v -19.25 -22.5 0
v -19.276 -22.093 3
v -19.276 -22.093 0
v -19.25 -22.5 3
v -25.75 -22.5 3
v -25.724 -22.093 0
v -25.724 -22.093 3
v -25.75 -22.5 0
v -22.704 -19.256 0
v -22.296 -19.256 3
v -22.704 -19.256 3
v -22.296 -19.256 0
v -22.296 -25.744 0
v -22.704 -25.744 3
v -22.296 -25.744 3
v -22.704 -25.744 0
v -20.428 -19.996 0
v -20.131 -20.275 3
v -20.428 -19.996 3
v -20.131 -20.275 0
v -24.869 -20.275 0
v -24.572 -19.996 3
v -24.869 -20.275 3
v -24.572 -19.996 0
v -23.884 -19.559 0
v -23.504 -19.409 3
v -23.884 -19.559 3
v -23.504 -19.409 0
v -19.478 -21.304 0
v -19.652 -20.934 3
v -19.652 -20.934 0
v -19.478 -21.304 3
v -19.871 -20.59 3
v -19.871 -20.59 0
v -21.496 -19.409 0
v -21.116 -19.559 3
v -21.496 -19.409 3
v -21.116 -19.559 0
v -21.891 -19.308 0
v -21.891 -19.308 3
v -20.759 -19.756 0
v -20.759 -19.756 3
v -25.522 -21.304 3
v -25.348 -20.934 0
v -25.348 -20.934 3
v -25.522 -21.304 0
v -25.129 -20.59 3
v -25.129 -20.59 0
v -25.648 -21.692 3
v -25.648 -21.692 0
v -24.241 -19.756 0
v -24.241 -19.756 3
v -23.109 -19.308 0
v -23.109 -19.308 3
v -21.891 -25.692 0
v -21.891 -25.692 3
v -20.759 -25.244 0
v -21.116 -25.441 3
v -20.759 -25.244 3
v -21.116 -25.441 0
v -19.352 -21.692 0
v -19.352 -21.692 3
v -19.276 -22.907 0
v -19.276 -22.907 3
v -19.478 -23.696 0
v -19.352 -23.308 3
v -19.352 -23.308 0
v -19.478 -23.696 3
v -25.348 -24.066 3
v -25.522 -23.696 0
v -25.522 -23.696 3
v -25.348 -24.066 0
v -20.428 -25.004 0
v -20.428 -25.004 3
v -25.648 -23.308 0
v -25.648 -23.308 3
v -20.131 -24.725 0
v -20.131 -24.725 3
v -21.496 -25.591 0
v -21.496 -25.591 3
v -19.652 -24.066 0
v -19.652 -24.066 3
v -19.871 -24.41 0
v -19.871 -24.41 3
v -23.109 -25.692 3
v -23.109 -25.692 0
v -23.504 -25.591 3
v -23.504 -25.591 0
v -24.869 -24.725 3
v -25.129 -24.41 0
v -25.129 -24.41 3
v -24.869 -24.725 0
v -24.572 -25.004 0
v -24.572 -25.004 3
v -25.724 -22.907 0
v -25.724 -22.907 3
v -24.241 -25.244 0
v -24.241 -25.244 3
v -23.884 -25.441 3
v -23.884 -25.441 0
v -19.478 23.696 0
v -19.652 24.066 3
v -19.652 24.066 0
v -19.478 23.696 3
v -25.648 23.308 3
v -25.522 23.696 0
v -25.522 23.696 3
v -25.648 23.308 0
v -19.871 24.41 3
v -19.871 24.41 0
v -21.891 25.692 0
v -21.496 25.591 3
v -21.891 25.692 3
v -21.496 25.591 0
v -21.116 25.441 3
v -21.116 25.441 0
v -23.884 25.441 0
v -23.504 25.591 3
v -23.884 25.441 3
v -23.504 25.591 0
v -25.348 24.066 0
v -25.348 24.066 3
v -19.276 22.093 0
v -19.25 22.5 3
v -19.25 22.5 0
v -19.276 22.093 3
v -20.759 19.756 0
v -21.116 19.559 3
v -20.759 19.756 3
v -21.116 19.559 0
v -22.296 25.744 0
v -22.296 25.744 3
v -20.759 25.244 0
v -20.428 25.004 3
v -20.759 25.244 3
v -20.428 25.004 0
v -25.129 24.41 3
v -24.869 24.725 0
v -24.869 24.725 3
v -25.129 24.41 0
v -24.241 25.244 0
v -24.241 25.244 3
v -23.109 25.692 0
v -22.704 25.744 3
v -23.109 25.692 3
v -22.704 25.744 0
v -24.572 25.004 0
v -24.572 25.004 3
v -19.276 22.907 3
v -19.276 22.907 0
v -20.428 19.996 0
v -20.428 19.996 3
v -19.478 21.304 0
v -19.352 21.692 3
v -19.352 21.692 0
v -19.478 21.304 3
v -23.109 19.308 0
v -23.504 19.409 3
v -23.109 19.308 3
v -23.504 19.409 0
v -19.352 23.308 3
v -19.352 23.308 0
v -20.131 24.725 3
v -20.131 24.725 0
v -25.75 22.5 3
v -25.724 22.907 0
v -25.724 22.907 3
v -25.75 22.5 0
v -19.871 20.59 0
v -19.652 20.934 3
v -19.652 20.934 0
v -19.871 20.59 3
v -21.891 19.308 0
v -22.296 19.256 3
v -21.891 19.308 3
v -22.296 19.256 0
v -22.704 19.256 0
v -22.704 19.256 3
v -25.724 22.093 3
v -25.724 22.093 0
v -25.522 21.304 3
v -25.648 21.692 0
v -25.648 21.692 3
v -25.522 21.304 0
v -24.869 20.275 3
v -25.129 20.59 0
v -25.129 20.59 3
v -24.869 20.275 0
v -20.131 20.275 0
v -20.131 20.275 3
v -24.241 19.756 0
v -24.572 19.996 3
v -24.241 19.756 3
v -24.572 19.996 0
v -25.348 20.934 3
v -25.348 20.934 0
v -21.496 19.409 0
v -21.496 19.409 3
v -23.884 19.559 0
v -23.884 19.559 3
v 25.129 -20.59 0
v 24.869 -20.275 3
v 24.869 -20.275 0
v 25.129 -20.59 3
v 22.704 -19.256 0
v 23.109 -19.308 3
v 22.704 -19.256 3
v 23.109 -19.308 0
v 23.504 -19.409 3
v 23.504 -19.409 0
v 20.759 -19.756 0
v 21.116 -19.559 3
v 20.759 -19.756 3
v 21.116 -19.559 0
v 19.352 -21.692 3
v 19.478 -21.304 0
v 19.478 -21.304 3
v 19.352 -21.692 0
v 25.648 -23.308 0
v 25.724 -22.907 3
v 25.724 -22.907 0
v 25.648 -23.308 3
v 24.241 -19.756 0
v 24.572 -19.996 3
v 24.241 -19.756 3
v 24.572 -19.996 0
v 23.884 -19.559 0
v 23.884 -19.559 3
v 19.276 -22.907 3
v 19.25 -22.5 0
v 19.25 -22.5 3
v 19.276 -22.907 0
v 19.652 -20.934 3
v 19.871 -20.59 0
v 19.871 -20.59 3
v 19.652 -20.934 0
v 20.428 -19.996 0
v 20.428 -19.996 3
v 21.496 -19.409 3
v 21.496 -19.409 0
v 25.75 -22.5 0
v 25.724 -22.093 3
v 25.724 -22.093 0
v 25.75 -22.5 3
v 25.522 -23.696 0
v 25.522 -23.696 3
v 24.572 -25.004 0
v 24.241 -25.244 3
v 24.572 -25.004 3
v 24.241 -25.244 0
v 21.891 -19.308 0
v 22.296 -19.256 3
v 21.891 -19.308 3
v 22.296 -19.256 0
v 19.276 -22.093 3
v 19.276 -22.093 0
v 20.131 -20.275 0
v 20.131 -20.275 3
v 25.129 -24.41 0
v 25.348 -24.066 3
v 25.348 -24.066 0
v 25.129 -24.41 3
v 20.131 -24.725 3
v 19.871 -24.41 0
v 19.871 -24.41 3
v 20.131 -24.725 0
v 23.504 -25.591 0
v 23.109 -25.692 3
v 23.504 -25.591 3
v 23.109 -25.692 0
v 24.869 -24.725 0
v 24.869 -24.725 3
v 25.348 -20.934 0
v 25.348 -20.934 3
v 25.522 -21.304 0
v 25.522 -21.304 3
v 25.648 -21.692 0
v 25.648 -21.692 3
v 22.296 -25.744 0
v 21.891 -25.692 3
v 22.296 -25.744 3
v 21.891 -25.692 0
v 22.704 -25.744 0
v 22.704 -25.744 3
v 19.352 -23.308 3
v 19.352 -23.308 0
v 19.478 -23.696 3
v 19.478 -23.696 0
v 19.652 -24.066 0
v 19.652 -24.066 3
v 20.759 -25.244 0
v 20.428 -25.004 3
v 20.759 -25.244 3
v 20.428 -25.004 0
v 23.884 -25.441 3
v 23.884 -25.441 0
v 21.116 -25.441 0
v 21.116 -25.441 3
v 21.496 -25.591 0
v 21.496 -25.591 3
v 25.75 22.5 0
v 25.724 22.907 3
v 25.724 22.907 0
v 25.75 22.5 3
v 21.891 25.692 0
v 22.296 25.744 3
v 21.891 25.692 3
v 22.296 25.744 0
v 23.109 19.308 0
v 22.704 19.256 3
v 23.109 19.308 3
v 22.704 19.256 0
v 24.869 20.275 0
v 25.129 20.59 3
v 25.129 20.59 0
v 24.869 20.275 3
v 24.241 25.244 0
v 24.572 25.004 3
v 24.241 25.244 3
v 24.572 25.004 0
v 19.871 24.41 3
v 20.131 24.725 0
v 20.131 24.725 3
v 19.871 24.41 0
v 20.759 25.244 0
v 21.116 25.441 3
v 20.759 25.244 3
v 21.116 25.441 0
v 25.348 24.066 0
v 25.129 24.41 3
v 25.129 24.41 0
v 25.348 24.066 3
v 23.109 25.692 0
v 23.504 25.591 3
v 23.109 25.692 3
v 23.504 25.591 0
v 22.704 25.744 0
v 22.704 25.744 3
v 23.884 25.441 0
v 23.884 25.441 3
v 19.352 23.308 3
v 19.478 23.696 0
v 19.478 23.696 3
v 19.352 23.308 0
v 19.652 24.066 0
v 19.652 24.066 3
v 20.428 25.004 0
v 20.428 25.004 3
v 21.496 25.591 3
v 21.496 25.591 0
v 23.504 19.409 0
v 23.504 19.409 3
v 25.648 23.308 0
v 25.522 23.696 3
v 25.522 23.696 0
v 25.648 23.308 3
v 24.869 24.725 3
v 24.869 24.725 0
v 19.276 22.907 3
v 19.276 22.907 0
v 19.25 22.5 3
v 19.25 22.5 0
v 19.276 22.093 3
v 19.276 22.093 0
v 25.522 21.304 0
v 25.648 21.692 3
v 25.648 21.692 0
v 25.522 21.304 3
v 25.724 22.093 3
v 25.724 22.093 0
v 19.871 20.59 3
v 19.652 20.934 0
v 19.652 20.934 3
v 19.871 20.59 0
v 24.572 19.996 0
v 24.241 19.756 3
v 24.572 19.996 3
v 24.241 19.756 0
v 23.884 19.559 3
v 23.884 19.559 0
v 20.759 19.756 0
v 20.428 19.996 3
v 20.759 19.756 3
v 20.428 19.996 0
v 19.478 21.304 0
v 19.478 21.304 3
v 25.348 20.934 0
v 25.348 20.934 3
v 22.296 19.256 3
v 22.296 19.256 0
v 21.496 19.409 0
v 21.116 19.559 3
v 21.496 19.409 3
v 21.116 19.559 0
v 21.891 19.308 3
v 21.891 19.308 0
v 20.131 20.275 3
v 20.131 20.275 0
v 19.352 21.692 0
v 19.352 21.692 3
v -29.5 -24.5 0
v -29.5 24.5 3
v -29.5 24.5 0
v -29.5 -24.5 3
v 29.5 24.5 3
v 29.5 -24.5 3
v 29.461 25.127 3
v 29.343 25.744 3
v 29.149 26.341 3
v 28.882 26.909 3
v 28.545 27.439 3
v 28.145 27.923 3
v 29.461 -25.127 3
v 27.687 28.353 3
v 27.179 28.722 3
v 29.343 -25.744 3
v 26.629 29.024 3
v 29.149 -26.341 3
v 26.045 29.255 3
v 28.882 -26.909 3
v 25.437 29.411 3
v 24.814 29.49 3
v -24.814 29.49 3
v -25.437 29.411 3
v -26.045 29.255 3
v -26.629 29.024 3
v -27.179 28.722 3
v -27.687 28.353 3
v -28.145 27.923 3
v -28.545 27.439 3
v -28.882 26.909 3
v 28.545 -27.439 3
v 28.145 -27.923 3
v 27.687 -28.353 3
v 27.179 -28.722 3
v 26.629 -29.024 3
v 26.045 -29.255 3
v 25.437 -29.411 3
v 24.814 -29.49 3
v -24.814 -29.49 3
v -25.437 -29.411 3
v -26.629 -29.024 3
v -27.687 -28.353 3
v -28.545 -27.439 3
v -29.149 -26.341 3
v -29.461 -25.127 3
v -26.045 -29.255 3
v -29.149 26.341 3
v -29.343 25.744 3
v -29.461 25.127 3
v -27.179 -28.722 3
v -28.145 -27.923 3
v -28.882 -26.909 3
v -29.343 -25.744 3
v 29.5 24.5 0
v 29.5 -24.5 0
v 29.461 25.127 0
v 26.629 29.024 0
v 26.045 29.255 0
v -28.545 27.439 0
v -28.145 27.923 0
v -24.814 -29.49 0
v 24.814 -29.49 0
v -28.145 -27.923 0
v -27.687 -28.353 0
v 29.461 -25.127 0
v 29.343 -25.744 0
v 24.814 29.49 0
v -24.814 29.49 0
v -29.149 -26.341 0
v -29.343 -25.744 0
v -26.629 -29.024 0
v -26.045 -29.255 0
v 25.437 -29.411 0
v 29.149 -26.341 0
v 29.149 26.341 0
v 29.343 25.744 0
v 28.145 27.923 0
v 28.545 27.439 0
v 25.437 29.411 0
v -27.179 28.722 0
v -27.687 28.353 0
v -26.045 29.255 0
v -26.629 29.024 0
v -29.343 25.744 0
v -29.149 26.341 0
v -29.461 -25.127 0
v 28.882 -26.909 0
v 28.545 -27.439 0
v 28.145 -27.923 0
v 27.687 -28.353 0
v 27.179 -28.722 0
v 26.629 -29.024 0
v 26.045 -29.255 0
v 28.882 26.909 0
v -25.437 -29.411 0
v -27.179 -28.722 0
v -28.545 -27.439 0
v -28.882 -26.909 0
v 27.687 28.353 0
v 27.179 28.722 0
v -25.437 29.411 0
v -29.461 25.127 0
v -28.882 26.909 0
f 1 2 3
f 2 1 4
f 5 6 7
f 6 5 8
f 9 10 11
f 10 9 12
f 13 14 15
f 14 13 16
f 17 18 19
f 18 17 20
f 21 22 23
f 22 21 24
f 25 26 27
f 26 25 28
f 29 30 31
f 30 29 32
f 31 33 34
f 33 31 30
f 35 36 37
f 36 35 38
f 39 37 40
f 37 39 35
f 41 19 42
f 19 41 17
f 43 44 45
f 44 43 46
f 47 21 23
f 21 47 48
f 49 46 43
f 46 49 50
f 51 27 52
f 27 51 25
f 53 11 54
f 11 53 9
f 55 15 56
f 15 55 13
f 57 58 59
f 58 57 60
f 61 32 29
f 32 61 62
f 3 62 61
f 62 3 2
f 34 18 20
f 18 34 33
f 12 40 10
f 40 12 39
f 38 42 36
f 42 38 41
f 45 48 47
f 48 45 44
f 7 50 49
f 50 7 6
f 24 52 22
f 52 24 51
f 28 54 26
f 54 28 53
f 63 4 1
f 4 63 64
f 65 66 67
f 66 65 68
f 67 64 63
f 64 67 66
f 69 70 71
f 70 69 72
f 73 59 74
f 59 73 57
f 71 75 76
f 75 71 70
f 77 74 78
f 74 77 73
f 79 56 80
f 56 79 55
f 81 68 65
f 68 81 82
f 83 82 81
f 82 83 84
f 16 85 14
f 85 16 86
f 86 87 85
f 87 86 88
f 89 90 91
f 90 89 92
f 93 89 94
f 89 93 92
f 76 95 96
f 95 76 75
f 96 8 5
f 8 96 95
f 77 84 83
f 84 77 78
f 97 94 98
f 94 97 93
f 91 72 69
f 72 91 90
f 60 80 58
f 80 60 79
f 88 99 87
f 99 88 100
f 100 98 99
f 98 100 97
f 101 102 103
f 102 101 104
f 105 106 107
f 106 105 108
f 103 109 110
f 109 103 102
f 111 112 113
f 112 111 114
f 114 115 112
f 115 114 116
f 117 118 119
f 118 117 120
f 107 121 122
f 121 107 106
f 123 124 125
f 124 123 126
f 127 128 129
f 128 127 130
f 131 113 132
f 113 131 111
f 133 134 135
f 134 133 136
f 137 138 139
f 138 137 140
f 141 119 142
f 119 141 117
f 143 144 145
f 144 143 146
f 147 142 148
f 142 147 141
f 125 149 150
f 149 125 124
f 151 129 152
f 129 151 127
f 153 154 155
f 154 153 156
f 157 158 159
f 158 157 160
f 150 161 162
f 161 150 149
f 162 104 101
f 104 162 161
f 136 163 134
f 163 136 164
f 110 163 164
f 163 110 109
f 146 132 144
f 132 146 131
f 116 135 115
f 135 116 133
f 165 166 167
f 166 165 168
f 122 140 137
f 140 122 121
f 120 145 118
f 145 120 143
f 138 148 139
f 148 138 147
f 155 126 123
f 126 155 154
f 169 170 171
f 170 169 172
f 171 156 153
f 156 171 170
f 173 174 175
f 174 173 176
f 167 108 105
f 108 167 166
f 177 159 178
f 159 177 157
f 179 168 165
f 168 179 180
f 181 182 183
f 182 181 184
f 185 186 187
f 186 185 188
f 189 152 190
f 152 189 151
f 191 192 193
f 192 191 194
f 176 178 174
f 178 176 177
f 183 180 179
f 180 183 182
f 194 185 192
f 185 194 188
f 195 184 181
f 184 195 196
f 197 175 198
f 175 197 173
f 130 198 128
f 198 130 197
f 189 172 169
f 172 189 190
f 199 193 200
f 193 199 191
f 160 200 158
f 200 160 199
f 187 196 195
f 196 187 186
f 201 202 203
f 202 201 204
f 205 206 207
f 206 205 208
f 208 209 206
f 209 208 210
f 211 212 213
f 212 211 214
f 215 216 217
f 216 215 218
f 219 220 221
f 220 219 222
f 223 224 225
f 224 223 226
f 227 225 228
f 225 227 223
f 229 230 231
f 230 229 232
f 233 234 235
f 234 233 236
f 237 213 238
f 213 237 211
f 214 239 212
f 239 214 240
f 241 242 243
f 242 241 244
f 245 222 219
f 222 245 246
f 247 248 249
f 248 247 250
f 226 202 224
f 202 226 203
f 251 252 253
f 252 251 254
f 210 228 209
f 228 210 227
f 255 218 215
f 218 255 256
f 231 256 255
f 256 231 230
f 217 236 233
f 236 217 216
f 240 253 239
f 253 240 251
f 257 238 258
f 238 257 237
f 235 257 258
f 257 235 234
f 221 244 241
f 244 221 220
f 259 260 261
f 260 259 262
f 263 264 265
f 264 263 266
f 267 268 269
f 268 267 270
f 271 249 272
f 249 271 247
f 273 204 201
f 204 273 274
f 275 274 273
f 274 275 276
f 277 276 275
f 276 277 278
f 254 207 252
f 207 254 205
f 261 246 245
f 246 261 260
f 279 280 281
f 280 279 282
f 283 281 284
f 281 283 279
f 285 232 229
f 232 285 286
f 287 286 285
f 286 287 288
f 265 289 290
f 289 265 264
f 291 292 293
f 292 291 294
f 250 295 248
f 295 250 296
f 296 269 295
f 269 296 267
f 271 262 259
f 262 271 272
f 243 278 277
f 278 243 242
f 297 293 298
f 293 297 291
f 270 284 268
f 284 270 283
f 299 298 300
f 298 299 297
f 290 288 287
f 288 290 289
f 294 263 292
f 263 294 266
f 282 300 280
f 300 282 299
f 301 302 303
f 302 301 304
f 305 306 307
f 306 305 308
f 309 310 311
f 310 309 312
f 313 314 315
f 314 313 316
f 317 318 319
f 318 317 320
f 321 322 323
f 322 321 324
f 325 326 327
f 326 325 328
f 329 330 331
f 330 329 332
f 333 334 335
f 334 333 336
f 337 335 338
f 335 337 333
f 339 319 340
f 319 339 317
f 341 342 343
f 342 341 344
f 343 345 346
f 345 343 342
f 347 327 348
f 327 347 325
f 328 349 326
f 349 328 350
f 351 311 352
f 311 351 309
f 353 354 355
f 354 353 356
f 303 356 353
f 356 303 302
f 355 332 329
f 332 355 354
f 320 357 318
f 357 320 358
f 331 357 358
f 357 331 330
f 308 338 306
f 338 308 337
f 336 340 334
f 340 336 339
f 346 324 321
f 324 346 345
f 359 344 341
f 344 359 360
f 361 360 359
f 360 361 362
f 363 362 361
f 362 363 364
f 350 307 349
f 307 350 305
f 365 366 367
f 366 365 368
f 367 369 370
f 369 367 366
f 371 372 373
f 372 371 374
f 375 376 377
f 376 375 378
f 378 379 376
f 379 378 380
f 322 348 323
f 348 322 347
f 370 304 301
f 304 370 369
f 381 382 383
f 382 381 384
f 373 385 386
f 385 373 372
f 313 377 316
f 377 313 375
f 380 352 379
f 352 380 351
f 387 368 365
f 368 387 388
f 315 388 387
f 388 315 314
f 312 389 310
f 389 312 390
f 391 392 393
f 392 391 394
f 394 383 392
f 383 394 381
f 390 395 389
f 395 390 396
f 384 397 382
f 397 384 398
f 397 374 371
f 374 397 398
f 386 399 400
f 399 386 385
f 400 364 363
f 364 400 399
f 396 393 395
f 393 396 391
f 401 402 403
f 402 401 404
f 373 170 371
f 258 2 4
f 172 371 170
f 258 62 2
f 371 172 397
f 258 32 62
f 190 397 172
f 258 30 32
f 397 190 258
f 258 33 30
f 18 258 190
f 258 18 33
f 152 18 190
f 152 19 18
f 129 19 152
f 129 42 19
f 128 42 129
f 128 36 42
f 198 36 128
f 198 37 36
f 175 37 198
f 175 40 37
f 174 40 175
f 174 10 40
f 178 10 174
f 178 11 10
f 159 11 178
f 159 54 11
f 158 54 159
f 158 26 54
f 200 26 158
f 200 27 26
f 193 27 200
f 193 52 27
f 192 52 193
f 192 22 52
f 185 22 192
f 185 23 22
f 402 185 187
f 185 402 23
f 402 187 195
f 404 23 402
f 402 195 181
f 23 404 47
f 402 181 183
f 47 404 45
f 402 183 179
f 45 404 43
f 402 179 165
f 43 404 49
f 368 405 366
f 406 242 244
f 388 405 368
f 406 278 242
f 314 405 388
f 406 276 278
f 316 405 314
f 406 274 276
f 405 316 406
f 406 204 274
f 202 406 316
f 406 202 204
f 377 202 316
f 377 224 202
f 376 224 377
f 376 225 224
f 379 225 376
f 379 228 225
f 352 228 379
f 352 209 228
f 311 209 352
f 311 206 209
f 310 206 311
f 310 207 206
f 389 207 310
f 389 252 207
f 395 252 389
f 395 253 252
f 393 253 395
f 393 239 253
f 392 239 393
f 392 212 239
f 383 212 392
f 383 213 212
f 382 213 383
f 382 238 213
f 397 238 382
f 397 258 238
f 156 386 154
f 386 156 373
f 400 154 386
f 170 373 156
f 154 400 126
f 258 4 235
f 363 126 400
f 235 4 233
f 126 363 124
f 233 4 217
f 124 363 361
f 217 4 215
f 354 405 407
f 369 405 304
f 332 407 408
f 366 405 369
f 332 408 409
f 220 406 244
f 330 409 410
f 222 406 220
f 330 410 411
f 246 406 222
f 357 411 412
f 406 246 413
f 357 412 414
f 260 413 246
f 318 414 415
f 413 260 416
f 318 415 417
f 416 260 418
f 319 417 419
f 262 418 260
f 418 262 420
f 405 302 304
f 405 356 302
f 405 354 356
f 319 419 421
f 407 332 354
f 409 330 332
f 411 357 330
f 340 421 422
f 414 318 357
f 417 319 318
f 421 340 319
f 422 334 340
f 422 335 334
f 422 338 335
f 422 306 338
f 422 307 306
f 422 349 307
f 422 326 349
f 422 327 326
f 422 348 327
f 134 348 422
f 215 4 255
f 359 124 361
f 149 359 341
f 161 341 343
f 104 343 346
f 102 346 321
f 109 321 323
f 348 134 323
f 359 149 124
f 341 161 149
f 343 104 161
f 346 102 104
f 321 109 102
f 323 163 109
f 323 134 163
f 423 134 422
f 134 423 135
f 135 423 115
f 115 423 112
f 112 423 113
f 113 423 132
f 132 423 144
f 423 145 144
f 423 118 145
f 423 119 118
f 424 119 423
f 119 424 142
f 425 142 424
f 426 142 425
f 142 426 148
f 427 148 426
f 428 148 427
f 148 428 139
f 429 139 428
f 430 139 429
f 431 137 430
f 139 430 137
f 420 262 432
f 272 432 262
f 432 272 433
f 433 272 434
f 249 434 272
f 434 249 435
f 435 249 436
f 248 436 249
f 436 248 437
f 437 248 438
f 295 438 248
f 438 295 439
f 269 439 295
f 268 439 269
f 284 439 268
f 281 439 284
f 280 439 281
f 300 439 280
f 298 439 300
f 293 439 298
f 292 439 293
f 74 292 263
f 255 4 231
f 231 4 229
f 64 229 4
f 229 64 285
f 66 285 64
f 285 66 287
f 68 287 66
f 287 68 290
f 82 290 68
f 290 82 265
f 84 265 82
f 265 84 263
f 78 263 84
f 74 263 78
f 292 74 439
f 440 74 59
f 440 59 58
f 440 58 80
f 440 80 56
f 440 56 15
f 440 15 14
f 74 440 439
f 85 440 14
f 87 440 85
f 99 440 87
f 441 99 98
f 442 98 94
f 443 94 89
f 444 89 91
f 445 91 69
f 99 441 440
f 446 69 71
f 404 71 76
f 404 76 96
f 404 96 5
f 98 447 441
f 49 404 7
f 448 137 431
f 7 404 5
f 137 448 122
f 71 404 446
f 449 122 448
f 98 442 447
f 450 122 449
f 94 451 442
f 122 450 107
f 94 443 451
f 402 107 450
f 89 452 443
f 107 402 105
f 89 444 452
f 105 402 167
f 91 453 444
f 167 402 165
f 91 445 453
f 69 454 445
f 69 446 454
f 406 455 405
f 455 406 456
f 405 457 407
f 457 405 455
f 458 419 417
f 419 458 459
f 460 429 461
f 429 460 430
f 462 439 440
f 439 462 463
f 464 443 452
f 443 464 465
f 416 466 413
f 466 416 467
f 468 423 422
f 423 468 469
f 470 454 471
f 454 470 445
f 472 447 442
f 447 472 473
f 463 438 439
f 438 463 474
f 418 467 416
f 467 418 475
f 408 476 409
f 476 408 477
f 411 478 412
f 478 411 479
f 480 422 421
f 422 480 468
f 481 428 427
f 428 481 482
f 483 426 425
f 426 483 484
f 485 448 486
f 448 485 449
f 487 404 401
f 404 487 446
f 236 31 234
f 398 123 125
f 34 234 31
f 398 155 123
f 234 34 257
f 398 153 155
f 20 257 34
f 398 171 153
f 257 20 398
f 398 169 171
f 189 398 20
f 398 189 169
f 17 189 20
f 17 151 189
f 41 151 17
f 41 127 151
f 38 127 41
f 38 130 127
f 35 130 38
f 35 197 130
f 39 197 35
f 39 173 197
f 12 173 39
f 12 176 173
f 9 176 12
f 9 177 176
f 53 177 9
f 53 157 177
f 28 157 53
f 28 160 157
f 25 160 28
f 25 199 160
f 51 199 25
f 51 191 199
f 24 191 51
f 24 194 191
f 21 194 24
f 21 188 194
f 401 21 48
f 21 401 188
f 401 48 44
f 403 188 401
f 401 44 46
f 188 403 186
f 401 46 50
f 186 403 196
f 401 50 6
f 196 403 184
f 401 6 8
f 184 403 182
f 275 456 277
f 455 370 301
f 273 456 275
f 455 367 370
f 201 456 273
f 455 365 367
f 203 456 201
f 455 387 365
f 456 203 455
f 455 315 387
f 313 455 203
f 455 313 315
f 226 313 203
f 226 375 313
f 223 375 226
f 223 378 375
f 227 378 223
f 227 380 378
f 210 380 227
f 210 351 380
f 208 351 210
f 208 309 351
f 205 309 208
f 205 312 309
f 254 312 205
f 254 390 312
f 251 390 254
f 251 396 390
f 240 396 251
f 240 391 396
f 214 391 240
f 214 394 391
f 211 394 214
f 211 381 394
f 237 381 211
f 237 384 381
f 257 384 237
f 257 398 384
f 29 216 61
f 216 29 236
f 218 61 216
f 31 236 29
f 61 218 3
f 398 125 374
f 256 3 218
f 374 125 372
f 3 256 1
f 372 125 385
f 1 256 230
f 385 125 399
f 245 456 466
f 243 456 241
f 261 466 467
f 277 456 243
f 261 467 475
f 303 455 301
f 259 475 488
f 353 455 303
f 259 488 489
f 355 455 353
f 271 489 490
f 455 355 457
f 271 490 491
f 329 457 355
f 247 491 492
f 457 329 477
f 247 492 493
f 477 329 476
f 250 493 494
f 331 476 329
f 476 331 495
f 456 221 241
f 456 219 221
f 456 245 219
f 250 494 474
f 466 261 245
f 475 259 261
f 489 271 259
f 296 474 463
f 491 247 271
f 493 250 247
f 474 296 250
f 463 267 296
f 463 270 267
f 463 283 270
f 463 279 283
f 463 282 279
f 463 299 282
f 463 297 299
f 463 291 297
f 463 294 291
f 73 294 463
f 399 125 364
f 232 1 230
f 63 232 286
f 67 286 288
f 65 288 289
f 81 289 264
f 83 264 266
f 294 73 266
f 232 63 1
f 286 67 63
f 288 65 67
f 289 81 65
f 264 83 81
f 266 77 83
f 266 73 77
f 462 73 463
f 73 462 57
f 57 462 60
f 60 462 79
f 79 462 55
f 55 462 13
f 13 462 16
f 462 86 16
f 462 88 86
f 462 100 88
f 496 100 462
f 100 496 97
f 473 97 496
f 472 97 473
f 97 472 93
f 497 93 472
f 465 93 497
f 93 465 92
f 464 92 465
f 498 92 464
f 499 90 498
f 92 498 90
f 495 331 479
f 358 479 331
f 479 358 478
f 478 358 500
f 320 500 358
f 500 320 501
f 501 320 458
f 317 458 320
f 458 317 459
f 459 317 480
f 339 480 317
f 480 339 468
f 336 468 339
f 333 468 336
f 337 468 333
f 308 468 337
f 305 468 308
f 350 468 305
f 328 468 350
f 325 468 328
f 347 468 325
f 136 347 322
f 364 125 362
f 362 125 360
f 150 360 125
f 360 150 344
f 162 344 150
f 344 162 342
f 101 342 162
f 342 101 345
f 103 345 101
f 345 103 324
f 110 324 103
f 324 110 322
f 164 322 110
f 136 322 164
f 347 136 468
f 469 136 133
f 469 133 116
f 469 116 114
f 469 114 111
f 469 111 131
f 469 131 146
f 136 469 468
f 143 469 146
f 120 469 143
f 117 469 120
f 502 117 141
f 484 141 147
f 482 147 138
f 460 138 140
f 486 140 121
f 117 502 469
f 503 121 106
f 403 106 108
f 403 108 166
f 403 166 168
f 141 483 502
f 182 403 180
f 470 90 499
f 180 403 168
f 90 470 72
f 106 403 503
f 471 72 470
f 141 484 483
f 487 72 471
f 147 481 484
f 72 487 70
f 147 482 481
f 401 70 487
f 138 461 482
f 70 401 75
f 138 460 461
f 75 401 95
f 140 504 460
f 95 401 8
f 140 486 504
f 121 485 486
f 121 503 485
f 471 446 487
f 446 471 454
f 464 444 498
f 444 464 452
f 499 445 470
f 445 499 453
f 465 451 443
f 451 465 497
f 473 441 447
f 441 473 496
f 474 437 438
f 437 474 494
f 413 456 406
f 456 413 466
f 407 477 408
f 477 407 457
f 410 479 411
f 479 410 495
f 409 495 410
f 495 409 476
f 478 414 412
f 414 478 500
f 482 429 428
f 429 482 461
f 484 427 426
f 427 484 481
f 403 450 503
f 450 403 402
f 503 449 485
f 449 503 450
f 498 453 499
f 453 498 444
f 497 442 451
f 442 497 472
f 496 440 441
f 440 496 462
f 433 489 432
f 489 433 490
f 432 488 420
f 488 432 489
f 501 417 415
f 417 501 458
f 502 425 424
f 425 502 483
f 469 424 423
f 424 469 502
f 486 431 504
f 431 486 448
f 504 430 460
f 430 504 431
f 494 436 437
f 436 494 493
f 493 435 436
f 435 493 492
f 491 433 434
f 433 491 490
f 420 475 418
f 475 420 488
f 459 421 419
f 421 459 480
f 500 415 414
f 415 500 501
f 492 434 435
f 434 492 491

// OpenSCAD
$fn = 50;


difference() {
	union() {
		hull() {
			translate(v = [-24.5000000000, 24.5000000000, 0]) {
				cylinder(h = 3, r = 5);
			}
			translate(v = [24.5000000000, 24.5000000000, 0]) {
				cylinder(h = 3, r = 5);
			}
			translate(v = [-24.5000000000, -24.5000000000, 0]) {
				cylinder(h = 3, r = 5);
			}
			translate(v = [24.5000000000, -24.5000000000, 0]) {
				cylinder(h = 3, r = 5);
			}
		}
	}
	union() {
		translate(v = [-22.5000000000, -22.5000000000, -100.0000000000]) {
			cylinder(h = 200, r = 3.2500000000);
		}
		translate(v = [-22.5000000000, 22.5000000000, -100.0000000000]) {
			cylinder(h = 200, r = 3.2500000000);
		}
		translate(v = [22.5000000000, -22.5000000000, -100.0000000000]) {
			cylinder(h = 200, r = 3.2500000000);
		}
		translate(v = [22.5000000000, 22.5000000000, -100.0000000000]) {
			cylinder(h = 200, r = 3.2500000000);
		}
	}
}
